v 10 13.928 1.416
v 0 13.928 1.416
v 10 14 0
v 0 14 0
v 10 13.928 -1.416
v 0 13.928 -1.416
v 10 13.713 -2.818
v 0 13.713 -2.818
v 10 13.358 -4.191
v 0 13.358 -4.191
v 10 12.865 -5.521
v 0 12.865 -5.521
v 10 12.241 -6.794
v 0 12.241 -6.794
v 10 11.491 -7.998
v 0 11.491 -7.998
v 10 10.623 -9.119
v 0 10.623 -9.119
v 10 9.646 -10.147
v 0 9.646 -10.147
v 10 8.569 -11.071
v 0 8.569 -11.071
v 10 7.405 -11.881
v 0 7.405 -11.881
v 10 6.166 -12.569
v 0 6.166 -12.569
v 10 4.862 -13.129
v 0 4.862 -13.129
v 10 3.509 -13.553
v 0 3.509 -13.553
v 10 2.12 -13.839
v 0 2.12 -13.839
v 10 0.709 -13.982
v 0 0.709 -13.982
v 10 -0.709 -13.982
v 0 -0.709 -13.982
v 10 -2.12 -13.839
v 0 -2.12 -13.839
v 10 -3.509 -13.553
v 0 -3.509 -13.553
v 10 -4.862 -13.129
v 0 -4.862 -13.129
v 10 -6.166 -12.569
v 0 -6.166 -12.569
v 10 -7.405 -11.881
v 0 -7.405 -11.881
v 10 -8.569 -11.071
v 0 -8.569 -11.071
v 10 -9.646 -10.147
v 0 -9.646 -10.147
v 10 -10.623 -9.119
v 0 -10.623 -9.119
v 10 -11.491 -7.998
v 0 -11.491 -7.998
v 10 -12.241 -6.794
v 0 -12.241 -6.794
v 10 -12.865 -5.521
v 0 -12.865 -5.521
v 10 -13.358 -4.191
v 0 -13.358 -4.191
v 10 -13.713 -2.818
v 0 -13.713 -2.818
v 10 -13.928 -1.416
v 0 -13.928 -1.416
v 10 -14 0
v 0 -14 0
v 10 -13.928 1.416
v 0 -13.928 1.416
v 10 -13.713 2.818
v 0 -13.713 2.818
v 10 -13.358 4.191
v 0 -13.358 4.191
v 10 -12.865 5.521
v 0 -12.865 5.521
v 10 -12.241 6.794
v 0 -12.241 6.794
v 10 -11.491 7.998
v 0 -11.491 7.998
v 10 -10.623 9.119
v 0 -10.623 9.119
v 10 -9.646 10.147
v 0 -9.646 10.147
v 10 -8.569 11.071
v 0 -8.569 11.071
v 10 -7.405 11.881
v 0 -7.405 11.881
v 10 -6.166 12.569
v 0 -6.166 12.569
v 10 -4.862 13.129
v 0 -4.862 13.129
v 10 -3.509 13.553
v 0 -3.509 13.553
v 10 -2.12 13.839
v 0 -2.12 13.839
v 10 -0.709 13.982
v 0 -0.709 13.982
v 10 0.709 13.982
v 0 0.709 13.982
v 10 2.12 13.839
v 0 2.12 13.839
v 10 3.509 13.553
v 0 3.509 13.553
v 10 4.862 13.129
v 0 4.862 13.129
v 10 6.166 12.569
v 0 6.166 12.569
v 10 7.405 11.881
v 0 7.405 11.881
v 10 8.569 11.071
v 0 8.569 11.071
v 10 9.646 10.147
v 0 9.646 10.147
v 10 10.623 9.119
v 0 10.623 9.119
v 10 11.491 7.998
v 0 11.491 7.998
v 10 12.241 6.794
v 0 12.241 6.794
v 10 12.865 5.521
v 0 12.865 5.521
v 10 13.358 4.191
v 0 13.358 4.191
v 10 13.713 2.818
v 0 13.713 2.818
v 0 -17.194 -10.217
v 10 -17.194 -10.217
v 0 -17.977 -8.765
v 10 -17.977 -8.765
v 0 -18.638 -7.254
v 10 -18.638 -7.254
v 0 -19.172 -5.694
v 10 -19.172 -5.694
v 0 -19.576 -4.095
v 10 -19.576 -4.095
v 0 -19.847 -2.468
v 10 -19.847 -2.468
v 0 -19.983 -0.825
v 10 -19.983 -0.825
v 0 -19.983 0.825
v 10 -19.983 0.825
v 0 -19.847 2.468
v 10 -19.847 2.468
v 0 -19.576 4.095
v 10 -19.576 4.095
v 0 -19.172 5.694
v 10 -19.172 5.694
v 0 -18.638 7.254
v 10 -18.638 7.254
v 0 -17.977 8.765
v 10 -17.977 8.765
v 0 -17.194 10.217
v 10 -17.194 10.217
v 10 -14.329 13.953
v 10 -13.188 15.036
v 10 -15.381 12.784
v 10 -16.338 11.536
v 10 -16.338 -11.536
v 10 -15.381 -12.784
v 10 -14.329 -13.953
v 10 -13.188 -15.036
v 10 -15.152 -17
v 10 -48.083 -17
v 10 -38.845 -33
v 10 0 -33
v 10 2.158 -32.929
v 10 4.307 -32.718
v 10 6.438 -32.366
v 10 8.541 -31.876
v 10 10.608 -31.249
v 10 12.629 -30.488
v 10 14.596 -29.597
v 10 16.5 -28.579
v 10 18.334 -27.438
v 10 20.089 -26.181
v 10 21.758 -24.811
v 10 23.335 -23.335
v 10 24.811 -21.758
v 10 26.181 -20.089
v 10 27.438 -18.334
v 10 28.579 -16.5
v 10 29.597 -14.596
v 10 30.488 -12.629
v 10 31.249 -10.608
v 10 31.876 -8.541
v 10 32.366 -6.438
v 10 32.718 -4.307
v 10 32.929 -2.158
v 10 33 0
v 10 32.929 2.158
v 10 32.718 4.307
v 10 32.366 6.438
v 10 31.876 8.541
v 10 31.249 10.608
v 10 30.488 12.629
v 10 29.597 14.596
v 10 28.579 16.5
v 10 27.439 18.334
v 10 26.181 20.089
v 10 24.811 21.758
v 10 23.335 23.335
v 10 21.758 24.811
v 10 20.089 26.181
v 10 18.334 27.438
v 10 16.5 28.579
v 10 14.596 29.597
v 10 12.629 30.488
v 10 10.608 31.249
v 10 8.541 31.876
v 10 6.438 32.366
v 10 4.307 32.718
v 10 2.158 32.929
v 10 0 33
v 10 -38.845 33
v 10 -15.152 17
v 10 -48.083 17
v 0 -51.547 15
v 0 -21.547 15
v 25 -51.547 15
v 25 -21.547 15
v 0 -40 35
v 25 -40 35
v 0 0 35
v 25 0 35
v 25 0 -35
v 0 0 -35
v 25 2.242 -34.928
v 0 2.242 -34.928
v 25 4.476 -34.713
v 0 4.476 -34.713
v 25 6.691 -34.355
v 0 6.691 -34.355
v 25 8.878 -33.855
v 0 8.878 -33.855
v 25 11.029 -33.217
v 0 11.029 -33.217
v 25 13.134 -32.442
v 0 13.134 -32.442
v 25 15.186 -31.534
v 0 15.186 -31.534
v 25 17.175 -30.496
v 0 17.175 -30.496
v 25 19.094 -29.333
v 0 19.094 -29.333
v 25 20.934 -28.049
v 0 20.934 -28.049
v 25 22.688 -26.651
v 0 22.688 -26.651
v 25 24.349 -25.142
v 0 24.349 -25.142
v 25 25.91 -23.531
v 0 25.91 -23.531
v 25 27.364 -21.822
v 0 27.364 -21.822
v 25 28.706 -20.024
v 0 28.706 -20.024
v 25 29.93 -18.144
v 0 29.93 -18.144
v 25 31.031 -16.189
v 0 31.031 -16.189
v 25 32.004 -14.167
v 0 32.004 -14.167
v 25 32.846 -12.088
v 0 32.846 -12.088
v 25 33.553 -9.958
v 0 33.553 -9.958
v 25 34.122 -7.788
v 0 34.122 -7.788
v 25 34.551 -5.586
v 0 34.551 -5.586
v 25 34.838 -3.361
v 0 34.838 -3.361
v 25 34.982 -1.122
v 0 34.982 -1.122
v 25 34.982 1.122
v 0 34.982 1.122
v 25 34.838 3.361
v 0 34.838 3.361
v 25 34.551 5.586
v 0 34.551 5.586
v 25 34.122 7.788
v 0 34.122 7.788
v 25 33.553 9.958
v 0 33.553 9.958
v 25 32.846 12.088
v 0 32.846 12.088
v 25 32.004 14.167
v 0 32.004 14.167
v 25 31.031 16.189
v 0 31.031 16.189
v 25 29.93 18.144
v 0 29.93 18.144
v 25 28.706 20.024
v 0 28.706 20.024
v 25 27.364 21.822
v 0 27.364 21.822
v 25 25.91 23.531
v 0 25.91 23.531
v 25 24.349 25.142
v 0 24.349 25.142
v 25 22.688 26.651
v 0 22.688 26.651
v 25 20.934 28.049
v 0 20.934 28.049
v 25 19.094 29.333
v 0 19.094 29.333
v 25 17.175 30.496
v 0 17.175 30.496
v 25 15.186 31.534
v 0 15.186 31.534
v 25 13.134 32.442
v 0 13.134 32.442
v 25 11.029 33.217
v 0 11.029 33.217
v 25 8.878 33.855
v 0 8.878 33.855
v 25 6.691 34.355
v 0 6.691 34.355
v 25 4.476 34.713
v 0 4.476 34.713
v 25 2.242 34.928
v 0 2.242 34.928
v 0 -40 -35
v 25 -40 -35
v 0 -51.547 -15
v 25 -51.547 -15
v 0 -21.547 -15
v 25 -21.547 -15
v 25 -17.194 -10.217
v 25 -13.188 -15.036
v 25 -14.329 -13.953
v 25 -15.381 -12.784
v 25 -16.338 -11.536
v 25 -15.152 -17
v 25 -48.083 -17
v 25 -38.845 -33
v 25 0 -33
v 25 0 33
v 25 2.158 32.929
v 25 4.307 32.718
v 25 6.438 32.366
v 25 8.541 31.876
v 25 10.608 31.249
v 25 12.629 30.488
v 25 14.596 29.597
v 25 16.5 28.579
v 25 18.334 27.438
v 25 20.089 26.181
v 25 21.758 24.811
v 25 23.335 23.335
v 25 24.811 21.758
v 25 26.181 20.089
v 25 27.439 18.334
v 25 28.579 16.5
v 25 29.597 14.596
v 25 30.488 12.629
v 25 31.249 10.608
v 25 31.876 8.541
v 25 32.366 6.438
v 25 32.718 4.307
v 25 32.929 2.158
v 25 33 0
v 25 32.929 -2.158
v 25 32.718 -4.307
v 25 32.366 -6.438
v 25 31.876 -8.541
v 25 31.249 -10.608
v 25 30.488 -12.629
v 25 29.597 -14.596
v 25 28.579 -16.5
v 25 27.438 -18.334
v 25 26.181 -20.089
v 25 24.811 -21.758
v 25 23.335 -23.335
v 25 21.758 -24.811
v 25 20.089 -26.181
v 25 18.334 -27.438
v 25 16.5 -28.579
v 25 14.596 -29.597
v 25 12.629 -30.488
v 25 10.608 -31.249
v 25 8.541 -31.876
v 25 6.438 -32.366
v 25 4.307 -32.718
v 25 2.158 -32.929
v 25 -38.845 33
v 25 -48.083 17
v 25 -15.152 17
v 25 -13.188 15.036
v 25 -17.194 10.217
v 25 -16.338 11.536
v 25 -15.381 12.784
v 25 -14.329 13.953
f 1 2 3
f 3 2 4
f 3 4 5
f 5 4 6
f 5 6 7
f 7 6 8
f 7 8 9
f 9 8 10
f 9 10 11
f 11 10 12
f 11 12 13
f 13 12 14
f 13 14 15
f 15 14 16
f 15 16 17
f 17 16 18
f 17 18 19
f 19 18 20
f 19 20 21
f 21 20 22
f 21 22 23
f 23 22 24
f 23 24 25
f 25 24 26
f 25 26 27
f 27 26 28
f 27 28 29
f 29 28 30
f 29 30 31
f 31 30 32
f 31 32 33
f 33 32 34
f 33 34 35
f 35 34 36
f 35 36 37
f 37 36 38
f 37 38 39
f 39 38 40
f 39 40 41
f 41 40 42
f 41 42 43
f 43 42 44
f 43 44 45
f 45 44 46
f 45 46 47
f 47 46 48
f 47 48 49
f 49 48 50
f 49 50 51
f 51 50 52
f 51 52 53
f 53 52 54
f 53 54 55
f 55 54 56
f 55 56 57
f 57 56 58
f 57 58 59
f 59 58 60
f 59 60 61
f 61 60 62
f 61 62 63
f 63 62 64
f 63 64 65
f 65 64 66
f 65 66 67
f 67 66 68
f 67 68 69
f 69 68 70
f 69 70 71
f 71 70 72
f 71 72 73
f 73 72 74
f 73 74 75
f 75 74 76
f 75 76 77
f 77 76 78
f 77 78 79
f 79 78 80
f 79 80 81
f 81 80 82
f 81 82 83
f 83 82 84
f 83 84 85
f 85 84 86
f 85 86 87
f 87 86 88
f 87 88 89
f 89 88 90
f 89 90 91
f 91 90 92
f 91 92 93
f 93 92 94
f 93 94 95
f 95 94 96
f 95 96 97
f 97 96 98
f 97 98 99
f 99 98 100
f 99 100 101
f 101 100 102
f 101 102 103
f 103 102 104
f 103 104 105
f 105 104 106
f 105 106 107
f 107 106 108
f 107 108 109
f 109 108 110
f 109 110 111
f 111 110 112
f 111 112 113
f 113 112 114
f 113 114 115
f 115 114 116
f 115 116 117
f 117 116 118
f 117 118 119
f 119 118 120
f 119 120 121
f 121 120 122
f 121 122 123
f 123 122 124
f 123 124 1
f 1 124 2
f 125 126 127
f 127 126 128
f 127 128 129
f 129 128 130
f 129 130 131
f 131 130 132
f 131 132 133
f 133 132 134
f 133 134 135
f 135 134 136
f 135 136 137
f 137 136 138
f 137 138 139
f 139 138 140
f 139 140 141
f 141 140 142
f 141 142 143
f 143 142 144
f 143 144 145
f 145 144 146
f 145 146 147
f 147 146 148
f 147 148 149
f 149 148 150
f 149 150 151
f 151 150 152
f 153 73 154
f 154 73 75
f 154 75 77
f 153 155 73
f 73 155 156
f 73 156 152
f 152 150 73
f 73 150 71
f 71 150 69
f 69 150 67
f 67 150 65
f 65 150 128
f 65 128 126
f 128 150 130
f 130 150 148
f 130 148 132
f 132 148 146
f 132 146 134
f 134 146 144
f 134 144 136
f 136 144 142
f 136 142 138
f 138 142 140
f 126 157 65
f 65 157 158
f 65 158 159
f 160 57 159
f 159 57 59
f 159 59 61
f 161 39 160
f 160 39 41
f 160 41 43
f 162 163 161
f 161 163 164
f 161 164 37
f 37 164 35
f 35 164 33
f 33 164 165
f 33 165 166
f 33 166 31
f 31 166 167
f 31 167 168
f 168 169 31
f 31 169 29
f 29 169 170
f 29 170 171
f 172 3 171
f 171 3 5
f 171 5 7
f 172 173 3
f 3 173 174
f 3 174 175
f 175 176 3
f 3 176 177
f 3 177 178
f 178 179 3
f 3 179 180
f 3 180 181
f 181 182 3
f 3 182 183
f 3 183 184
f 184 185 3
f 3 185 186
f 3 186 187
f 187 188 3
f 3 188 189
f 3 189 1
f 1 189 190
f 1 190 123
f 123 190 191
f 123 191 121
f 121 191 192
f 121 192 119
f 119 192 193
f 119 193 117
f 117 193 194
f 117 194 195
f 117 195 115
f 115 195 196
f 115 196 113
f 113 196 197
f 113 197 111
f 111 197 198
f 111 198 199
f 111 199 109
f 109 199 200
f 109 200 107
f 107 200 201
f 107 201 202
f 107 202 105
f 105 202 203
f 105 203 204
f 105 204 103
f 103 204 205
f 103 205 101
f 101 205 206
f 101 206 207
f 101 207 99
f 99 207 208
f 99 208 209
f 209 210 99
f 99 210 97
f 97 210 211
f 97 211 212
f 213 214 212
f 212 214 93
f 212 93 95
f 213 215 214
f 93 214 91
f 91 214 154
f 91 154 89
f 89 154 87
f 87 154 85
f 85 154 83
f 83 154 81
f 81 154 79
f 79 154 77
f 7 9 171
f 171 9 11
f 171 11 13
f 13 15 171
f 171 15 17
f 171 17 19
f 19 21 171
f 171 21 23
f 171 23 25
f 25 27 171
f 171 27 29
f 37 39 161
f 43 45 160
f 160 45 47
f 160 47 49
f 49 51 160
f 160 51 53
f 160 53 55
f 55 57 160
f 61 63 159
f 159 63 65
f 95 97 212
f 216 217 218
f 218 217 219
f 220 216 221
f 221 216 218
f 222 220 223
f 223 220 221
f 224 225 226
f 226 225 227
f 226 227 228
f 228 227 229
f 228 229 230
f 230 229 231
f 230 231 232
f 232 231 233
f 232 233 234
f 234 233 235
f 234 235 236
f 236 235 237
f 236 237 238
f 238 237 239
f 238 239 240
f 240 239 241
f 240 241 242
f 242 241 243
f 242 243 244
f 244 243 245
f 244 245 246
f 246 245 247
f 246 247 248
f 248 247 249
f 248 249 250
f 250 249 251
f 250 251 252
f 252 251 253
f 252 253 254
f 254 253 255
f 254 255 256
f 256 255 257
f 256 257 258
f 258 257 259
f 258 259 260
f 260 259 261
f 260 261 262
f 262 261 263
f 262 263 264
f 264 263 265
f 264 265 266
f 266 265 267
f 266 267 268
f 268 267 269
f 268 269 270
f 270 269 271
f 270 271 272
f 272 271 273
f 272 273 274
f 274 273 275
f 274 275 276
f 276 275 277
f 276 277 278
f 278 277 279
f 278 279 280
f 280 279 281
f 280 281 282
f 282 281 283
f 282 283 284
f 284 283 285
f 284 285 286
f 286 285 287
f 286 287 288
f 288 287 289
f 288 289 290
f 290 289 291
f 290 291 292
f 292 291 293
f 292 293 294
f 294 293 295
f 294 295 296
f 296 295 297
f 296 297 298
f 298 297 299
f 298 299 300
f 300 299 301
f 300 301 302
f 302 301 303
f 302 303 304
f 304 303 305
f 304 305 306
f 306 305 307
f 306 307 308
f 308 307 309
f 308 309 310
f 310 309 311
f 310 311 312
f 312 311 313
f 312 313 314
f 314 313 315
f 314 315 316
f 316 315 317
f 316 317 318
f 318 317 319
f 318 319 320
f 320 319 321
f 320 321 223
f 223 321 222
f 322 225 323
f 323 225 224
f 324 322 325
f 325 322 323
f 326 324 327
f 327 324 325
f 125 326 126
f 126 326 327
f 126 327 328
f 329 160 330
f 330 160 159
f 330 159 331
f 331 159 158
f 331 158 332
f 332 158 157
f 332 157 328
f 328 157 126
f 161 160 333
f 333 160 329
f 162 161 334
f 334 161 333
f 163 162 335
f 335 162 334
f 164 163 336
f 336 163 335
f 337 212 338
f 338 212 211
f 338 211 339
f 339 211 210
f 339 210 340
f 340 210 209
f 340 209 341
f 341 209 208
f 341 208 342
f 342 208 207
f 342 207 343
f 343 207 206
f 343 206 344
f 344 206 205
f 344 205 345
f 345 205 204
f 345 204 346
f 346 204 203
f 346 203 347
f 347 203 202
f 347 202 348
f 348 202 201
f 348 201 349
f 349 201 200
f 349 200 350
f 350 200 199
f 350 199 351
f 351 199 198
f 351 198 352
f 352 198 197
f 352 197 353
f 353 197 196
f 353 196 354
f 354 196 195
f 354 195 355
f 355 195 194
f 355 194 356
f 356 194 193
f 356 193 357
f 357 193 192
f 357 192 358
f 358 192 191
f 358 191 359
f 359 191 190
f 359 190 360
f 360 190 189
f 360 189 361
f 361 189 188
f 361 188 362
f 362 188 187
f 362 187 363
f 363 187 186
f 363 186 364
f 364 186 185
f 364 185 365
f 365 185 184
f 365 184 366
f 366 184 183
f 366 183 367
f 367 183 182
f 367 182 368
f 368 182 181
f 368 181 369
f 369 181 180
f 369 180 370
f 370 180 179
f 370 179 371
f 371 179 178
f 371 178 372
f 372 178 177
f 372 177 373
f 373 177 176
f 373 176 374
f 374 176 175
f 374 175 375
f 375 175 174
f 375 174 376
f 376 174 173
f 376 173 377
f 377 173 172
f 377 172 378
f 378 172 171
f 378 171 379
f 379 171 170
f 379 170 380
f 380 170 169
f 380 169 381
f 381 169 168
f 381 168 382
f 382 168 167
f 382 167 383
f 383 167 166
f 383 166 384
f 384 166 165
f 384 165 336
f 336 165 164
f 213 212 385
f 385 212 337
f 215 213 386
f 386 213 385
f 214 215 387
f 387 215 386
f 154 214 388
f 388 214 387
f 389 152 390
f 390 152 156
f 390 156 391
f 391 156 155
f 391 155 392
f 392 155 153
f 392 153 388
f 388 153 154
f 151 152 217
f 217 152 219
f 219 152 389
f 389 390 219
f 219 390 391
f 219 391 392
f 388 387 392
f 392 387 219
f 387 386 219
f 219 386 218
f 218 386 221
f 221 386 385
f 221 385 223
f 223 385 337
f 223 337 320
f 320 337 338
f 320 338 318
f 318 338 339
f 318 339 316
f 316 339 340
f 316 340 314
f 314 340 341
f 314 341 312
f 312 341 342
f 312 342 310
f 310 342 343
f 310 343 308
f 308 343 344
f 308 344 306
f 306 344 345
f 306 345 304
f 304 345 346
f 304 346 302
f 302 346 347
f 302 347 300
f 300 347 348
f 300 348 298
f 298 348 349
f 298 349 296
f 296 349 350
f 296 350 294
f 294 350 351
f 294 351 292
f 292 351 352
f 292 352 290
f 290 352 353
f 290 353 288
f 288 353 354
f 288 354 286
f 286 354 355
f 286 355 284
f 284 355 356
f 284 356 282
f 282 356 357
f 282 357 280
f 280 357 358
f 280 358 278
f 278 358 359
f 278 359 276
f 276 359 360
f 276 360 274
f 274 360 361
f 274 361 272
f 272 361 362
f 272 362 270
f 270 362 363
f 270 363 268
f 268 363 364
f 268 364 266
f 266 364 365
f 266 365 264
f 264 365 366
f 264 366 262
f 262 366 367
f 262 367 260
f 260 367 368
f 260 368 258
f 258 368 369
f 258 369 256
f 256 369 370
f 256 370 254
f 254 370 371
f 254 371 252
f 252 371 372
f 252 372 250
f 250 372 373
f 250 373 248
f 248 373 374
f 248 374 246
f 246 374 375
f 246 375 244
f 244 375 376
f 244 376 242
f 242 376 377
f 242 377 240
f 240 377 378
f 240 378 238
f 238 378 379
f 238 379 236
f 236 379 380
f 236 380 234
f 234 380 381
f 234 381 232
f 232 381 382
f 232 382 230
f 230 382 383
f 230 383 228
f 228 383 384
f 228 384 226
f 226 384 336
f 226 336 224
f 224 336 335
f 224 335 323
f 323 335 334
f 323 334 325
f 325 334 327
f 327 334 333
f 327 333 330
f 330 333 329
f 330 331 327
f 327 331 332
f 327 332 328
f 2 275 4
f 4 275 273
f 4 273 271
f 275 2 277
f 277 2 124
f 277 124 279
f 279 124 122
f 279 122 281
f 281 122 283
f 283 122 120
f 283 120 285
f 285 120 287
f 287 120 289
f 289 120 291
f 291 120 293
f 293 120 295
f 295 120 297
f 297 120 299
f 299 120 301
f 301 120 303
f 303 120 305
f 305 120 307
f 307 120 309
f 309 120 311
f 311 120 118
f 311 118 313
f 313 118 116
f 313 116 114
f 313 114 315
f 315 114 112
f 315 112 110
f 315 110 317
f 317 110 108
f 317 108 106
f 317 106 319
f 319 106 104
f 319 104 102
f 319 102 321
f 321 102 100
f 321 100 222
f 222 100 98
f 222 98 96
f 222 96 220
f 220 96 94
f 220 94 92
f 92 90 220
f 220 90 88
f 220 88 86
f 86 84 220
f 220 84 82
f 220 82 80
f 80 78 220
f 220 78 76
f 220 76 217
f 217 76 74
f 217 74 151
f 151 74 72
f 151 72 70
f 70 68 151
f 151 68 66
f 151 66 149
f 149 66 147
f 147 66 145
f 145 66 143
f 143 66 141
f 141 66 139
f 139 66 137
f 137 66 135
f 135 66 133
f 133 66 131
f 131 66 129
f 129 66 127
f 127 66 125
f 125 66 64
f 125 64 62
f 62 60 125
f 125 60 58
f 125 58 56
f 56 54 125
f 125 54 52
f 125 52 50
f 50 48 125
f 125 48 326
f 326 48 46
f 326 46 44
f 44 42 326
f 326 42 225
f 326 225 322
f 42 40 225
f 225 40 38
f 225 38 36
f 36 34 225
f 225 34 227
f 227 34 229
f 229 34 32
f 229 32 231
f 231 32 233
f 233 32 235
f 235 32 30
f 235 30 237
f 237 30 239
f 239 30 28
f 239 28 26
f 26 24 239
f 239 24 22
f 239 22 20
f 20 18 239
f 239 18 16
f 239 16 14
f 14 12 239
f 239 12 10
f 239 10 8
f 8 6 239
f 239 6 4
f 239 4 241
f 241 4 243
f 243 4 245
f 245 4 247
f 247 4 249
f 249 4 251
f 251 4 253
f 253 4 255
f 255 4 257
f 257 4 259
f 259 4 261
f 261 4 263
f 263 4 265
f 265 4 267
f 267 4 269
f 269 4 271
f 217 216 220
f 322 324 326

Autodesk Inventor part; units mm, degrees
ref_plane "YZ Plane" through (0, 0, 0) normal (1, 0, 0) x (0, 1, 0)
ref_plane "XZ Plane" through (0, 0, 0) normal (0, 1, 0) x (-1, 0, 0)
ref_plane "XY Plane" through (0, 0, 0) normal (0, 0, 1) x (1, 0, 0)
sketch "Sketch1" plane through (0, 0, 0) normal (1, 0, 0) x (0, 1, 0)
  arc A0 (0, -35) -> (0, 35) centre (0, 0) ccw
  circle A1 centre (0, 0) radius 20
  circle A2 centre (0, 0) radius 14
  line L0 (0, 35) -> (-40, 35)
  line L1 (-40, 35) -> (-51.547, 15)
  line L2 (-40, 35) -> (-40, 2.9908) construction
  line L3 (-51.547, 15) -> (-21.547, 15)
  line L4 (-21.547, 15) -> (-17.1937, 10.2166)
  line L5 (0, 0) -> (45.2071, 0) construction
  arc A3 (-15.748, -29) -> (0, 33) centre (0, 0) ccw
  line L6 (0, 33) -> (-38.8453, 33)
  line L7 (-38.8453, 33) -> (-48.0829, 17)
  line L8 (-48.0829, 17) -> (-15.152, 17)
  line L9 (-15.152, 17) -> (-13.1879, 15.0359)
  line L10 (-15.152, 17) -> (-12.3744, 17) construction
  line L11 (0, -35) -> (-40, -35)
  line L12 (-40, -35) -> (-51.547, -15)
  line L13 (-40, -35) -> (-40, -2.9908) construction
  line L14 (-51.547, -15) -> (-21.547, -15)
  line L15 (-21.547, -15) -> (-17.1937, -10.2166)
  line L16 (0, -33) -> (-38.8453, -33)
  line L17 (-38.8453, -33) -> (-48.0829, -17)
  line L18 (-48.0829, -17) -> (-15.152, -17)
  line L19 (-15.152, -17) -> (-13.1879, -15.0359)
  point P0 (0, -33)
  point P1 (-13.1879, -15.0359)
  point P2 (-17.1937, -10.2166)
  dimension "d0" = 70
  dimension "d9" = 15
  dimension "d17" = 6
  dimension "d32" = 40
  dimension "d43" = 20
  dimension "d44" = 30
  dimension "d45" = 30
  dimension "d47" = 2
  dimension "d48" = 45
  dimension "d49" = 132.305
  dimension "d50" = 1.3067
  dimension "d51" = 30.6595
  dimension "d52" = 29
  dimension "d54" = 2.9907
extrude "Extrusion3" add sketch "Sketch1" along normal blind 25 contours L11 L12 L14 L15 A1 L19 L18 L17 L16 A3 L6 L7 L8 L9 L4 L3 L1 L0 A0
extrude "Extrusion4" add sketch "Sketch1" along normal blind 10 contours A1 | A1 L9 L8 L7 L6 A3 L16 L17 L18 L19
sketch "Sketch2" plane through (0, 0, 0) normal (-1, 0, 0) x (0, 0, 1)
  line L0 (-15, -21.547) -> (-15, -51.547) projected
  line L1 (-10.2166, -17.1937) -> (-15, -21.547) projected
  line L2 (-15, -21.547) -> (-10.2166, -17.1937)
  arc A0 (-10.2166, -17.1937) -> (10.2166, -17.1937) centre (0, 0) ccw projected
  arc A1 (-10.2166, -17.1937) -> (10.2166, -17.1937) centre (0, 0) ccw
  line L3 (15, -51.547) -> (15, -21.547) projected
  line L4 (15, -21.547) -> (10.2166, -17.1937) projected
  line L5 (15, -21.547) -> (10.2166, -17.1937)
properties part number "Brazo_3DPrint"
